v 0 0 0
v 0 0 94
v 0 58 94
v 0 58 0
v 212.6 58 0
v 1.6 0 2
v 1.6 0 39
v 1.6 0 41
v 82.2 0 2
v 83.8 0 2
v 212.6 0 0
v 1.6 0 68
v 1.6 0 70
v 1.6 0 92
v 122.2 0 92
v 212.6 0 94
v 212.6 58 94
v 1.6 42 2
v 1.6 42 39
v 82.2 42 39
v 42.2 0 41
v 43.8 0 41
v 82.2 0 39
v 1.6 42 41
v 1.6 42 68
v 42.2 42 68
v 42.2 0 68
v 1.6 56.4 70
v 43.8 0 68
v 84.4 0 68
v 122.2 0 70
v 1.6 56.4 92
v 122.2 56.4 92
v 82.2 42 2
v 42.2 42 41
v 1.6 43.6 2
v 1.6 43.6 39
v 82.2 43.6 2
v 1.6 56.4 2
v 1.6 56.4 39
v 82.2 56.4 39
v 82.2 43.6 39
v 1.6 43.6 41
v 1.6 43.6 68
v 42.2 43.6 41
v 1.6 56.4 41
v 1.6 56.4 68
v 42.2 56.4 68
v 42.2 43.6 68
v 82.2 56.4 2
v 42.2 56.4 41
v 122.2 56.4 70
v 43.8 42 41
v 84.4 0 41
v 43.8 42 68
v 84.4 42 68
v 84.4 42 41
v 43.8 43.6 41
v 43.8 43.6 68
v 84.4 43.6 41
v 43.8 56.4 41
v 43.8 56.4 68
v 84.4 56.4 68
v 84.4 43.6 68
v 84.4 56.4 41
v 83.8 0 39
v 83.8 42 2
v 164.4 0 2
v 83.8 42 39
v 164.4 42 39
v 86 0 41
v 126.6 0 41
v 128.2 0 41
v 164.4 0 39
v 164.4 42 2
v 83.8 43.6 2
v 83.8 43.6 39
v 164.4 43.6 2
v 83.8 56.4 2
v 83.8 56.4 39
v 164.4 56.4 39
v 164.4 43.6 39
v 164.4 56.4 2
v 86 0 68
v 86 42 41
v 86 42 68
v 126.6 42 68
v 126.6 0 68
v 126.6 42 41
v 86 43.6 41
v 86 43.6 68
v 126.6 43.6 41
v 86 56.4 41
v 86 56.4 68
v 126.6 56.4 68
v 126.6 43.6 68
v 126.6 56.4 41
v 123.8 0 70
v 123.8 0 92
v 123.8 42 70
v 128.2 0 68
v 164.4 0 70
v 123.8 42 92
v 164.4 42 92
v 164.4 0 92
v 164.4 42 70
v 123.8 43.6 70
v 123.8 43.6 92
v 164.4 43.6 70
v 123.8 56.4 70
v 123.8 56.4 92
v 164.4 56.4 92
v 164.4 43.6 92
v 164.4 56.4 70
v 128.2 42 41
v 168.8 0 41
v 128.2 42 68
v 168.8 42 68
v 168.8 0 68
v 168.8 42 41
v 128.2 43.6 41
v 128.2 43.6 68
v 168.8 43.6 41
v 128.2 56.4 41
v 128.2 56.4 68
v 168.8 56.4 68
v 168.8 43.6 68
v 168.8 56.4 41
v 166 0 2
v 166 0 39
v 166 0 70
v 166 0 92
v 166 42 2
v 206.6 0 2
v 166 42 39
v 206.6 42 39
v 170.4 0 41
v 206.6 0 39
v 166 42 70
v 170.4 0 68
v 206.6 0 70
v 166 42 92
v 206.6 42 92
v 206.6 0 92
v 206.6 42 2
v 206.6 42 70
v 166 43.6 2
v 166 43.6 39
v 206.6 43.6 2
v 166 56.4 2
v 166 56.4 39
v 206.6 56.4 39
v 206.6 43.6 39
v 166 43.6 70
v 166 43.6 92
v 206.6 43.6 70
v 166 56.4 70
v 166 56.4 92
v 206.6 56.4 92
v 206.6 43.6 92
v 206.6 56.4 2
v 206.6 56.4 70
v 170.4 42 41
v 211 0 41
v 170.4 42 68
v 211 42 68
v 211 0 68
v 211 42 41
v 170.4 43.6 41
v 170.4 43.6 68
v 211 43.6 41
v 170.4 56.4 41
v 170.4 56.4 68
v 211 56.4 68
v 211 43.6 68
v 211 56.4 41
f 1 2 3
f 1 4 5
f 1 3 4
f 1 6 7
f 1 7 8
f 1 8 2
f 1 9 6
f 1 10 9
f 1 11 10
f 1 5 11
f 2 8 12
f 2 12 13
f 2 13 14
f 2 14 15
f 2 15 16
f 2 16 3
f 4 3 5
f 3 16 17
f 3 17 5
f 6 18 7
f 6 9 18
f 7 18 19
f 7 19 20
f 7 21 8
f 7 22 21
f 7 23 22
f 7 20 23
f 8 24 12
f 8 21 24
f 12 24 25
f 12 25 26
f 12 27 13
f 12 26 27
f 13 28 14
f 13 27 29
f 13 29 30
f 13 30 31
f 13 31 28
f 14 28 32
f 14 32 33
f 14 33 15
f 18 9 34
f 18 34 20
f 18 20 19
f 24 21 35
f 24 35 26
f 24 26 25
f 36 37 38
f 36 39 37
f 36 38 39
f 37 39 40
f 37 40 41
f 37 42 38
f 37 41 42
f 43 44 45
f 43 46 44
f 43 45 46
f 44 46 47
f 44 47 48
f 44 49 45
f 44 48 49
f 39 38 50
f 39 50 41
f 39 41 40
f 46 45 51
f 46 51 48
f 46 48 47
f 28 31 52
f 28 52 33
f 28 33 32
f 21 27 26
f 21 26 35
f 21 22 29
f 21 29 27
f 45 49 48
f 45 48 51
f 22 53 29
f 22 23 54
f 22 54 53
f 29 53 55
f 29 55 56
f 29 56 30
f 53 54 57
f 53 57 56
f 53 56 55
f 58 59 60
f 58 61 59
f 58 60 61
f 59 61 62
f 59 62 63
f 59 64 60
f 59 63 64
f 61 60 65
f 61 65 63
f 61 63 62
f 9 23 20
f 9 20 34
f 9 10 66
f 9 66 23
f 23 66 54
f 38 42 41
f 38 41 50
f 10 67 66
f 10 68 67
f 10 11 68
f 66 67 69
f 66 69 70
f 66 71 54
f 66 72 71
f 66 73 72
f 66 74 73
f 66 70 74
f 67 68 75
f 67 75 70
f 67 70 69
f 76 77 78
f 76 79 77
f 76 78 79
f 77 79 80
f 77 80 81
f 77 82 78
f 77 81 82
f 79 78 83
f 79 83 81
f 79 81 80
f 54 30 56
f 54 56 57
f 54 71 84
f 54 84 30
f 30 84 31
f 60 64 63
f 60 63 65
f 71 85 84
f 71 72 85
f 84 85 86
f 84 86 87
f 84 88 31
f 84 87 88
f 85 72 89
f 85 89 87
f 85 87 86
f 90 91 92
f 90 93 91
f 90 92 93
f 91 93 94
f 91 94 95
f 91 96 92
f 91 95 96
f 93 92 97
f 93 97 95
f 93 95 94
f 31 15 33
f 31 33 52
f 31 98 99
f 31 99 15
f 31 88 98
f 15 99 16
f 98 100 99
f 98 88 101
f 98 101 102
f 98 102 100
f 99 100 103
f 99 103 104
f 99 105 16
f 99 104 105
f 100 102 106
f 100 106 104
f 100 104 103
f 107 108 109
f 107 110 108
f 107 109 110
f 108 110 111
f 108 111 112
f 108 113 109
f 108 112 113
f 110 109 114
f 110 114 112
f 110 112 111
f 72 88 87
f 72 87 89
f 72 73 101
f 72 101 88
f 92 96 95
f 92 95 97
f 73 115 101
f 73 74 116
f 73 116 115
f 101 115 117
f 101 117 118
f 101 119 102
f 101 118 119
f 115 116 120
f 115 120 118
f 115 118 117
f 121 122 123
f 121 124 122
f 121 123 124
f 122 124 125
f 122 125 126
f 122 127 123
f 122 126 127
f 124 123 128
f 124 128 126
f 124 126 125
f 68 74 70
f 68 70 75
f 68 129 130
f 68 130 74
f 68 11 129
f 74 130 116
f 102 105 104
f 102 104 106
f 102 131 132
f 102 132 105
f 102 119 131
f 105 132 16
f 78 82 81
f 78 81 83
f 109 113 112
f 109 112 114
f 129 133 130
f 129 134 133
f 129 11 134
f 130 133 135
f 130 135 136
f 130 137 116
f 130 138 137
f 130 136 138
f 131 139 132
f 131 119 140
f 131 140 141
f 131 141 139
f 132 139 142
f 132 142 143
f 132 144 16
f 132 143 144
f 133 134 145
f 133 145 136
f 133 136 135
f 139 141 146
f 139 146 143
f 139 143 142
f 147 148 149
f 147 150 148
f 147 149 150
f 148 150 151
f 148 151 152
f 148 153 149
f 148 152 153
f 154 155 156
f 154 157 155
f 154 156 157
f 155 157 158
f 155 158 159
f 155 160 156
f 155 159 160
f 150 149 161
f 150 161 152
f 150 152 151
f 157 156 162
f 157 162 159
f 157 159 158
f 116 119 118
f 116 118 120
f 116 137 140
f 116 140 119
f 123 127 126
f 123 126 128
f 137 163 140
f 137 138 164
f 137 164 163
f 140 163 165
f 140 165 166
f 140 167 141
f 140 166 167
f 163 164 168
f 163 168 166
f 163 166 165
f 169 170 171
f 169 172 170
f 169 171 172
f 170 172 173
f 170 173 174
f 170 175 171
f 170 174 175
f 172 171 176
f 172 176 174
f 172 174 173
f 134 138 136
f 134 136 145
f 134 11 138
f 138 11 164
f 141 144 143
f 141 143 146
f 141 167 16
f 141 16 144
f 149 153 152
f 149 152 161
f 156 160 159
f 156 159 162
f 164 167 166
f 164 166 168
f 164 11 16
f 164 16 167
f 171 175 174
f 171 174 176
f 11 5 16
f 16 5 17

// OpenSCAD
// Electronics Organizer Shelf
//
// Dedicated home for the bins and trays in ../electronics-storage/.
// Every slot is sized to its specific item with 0.3 mm per-side
// sliding tolerance — bins slide in like drawers and sit flush.
//
// Layout (looking at the front, rows stacked bottom → top):
//
//   ╔═══════════════════════════════════════════════╗
//   ║  Row A (22 mm tall):                          ║
//   ║   ┌──────── devboard tray ───────┐ ┌sm┐ ┌sm┐  ║
//   ║   │                              │ │  │ │  │  ║
//   ║   └──────────────────────────────┘ └──┘ └──┘  ║
//   ╠═══════════════════════════════════════════════╣
//   ║  Row B (27 mm tall):                          ║
//   ║   ┌sm┐ ┌sm┐ ┌sm┐ ┌sm┐ ┌sm┐                    ║
//   ║   │  │ │  │ │  │ │  │ │  │                    ║
//   ║   └──┘ └──┘ └──┘ └──┘ └──┘                    ║
//   ╠═══════════════════════════════════════════════╣
//   ║  Row C (37 mm tall):                          ║
//   ║   ┌── medium ──┐ ┌── medium ──┐ ┌sm┐          ║
//   ║   │            │ │            │ │  │          ║
//   ║   └────────────┘ └────────────┘ └──┘          ║
//   ╚═══════════════════════════════════════════════╝
//
// Total capacity:
//   - 1 × devboard tray (120 × 55 × 18)
//   - 2 × medium bin (80 × 40 × 35)
//   - 8 × small bin (40 × 40 × 25)
//
// Print upright (bottom face on bed). No supports — bin slots have
// hollow dead-space behind their backstops to save material; the
// sealed cavities are fully enclosed so nothing bridges.

$fn = 48;

// ---- Frame ----
OUTER_W     = 212.6;
OUTER_D     = 58;       // depth — devboard tray is 55 mm + 3 mm clearance
WALL        = 1.6;      // wall / divider thickness
FLOOR       = 2.0;      // row-separator floor thickness
TOL         = 0.3;      // per-side sliding tolerance

// ---- Row heights (interior) ----
ROW_A_H     = 22;       // fits 18 mm devboard tray + 4 mm finger clearance
ROW_B_H     = 27;       // fits 25 mm small bin
ROW_C_H     = 37;       // fits 35 mm medium bin

// ---- Slot depths ----
BIN_SLOT_D  = 42;       // 40 mm bin + 2 mm clearance
DBTR_SLOT_D = OUTER_D - WALL;  // devboard tray uses full interior depth

// ---- Slot widths ----
SMBIN_W     = 40  + 2*TOL;   // 40.6
MDBIN_W     = 80  + 2*TOL;   // 80.6
DBTR_W      = 120 + 2*TOL;   // 120.6

// ---- Dead space cavity (hollow behind bin backstops) ----
DEAD_START  = BIN_SLOT_D + WALL;   // 43.6
DEAD_END    = OUTER_D - WALL;      // 56.4
DEAD_DEPTH  = DEAD_END - DEAD_START;

// ---- Z positions (rows stack bottom → top: C, B, A) ----
Z_C_START   = FLOOR;
Z_C_END     = Z_C_START + ROW_C_H;
Z_B_START   = Z_C_END + FLOOR;
Z_B_END     = Z_B_START + ROW_B_H;
Z_A_START   = Z_B_END + FLOOR;
Z_A_END     = Z_A_START + ROW_A_H;
OUTER_H     = Z_A_END + FLOOR;   // 94 mm total

// ---- Slot X placements ----
C_OFFSETS = [
    WALL,
    WALL + MDBIN_W + WALL,
    WALL + 2*MDBIN_W + 2*WALL
];
C_WIDTHS  = [MDBIN_W, MDBIN_W, SMBIN_W];

A_OFFSETS = [
    WALL,
    WALL + DBTR_W + WALL,
    WALL + DBTR_W + 2*WALL + SMBIN_W
];
A_WIDTHS  = [DBTR_W, SMBIN_W, SMBIN_W];
A_DEPTHS  = [DBTR_SLOT_D, BIN_SLOT_D, BIN_SLOT_D];

// ---- Build ----
difference() {
    cube([OUTER_W, OUTER_D, OUTER_H]);

    // Row C: 2 medium + 1 small bin
    for (i = [0:2])
        translate([C_OFFSETS[i], 0, Z_C_START])
            cube([C_WIDTHS[i], BIN_SLOT_D, ROW_C_H]);

    // Row B: 5 small bins (equally spaced)
    for (i = [0:4])
        translate([WALL + i*(SMBIN_W + WALL), 0, Z_B_START])
            cube([SMBIN_W, BIN_SLOT_D, ROW_B_H]);

    // Row A: 1 devboard tray + 2 small bins
    for (i = [0:2])
        translate([A_OFFSETS[i], 0, Z_A_START])
            cube([A_WIDTHS[i], A_DEPTHS[i], ROW_A_H]);

    // Hollow dead-space cavities behind each bin backstop
    // (devboard tray slot has no backstop — uses full depth)
    if (DEAD_DEPTH > 0) {
        // Row C
        for (i = [0:2])
            translate([C_OFFSETS[i], DEAD_START, Z_C_START])
                cube([C_WIDTHS[i], DEAD_DEPTH, ROW_C_H]);
        // Row B
        for (i = [0:4])
            translate([WALL + i*(SMBIN_W + WALL), DEAD_START, Z_B_START])
                cube([SMBIN_W, DEAD_DEPTH, ROW_B_H]);
        // Row A (small-bin slots only, not devboard)
        for (i = [1:2])
            translate([A_OFFSETS[i], DEAD_START, Z_A_START])
                cube([A_WIDTHS[i], DEAD_DEPTH, ROW_A_H]);
    }
}
